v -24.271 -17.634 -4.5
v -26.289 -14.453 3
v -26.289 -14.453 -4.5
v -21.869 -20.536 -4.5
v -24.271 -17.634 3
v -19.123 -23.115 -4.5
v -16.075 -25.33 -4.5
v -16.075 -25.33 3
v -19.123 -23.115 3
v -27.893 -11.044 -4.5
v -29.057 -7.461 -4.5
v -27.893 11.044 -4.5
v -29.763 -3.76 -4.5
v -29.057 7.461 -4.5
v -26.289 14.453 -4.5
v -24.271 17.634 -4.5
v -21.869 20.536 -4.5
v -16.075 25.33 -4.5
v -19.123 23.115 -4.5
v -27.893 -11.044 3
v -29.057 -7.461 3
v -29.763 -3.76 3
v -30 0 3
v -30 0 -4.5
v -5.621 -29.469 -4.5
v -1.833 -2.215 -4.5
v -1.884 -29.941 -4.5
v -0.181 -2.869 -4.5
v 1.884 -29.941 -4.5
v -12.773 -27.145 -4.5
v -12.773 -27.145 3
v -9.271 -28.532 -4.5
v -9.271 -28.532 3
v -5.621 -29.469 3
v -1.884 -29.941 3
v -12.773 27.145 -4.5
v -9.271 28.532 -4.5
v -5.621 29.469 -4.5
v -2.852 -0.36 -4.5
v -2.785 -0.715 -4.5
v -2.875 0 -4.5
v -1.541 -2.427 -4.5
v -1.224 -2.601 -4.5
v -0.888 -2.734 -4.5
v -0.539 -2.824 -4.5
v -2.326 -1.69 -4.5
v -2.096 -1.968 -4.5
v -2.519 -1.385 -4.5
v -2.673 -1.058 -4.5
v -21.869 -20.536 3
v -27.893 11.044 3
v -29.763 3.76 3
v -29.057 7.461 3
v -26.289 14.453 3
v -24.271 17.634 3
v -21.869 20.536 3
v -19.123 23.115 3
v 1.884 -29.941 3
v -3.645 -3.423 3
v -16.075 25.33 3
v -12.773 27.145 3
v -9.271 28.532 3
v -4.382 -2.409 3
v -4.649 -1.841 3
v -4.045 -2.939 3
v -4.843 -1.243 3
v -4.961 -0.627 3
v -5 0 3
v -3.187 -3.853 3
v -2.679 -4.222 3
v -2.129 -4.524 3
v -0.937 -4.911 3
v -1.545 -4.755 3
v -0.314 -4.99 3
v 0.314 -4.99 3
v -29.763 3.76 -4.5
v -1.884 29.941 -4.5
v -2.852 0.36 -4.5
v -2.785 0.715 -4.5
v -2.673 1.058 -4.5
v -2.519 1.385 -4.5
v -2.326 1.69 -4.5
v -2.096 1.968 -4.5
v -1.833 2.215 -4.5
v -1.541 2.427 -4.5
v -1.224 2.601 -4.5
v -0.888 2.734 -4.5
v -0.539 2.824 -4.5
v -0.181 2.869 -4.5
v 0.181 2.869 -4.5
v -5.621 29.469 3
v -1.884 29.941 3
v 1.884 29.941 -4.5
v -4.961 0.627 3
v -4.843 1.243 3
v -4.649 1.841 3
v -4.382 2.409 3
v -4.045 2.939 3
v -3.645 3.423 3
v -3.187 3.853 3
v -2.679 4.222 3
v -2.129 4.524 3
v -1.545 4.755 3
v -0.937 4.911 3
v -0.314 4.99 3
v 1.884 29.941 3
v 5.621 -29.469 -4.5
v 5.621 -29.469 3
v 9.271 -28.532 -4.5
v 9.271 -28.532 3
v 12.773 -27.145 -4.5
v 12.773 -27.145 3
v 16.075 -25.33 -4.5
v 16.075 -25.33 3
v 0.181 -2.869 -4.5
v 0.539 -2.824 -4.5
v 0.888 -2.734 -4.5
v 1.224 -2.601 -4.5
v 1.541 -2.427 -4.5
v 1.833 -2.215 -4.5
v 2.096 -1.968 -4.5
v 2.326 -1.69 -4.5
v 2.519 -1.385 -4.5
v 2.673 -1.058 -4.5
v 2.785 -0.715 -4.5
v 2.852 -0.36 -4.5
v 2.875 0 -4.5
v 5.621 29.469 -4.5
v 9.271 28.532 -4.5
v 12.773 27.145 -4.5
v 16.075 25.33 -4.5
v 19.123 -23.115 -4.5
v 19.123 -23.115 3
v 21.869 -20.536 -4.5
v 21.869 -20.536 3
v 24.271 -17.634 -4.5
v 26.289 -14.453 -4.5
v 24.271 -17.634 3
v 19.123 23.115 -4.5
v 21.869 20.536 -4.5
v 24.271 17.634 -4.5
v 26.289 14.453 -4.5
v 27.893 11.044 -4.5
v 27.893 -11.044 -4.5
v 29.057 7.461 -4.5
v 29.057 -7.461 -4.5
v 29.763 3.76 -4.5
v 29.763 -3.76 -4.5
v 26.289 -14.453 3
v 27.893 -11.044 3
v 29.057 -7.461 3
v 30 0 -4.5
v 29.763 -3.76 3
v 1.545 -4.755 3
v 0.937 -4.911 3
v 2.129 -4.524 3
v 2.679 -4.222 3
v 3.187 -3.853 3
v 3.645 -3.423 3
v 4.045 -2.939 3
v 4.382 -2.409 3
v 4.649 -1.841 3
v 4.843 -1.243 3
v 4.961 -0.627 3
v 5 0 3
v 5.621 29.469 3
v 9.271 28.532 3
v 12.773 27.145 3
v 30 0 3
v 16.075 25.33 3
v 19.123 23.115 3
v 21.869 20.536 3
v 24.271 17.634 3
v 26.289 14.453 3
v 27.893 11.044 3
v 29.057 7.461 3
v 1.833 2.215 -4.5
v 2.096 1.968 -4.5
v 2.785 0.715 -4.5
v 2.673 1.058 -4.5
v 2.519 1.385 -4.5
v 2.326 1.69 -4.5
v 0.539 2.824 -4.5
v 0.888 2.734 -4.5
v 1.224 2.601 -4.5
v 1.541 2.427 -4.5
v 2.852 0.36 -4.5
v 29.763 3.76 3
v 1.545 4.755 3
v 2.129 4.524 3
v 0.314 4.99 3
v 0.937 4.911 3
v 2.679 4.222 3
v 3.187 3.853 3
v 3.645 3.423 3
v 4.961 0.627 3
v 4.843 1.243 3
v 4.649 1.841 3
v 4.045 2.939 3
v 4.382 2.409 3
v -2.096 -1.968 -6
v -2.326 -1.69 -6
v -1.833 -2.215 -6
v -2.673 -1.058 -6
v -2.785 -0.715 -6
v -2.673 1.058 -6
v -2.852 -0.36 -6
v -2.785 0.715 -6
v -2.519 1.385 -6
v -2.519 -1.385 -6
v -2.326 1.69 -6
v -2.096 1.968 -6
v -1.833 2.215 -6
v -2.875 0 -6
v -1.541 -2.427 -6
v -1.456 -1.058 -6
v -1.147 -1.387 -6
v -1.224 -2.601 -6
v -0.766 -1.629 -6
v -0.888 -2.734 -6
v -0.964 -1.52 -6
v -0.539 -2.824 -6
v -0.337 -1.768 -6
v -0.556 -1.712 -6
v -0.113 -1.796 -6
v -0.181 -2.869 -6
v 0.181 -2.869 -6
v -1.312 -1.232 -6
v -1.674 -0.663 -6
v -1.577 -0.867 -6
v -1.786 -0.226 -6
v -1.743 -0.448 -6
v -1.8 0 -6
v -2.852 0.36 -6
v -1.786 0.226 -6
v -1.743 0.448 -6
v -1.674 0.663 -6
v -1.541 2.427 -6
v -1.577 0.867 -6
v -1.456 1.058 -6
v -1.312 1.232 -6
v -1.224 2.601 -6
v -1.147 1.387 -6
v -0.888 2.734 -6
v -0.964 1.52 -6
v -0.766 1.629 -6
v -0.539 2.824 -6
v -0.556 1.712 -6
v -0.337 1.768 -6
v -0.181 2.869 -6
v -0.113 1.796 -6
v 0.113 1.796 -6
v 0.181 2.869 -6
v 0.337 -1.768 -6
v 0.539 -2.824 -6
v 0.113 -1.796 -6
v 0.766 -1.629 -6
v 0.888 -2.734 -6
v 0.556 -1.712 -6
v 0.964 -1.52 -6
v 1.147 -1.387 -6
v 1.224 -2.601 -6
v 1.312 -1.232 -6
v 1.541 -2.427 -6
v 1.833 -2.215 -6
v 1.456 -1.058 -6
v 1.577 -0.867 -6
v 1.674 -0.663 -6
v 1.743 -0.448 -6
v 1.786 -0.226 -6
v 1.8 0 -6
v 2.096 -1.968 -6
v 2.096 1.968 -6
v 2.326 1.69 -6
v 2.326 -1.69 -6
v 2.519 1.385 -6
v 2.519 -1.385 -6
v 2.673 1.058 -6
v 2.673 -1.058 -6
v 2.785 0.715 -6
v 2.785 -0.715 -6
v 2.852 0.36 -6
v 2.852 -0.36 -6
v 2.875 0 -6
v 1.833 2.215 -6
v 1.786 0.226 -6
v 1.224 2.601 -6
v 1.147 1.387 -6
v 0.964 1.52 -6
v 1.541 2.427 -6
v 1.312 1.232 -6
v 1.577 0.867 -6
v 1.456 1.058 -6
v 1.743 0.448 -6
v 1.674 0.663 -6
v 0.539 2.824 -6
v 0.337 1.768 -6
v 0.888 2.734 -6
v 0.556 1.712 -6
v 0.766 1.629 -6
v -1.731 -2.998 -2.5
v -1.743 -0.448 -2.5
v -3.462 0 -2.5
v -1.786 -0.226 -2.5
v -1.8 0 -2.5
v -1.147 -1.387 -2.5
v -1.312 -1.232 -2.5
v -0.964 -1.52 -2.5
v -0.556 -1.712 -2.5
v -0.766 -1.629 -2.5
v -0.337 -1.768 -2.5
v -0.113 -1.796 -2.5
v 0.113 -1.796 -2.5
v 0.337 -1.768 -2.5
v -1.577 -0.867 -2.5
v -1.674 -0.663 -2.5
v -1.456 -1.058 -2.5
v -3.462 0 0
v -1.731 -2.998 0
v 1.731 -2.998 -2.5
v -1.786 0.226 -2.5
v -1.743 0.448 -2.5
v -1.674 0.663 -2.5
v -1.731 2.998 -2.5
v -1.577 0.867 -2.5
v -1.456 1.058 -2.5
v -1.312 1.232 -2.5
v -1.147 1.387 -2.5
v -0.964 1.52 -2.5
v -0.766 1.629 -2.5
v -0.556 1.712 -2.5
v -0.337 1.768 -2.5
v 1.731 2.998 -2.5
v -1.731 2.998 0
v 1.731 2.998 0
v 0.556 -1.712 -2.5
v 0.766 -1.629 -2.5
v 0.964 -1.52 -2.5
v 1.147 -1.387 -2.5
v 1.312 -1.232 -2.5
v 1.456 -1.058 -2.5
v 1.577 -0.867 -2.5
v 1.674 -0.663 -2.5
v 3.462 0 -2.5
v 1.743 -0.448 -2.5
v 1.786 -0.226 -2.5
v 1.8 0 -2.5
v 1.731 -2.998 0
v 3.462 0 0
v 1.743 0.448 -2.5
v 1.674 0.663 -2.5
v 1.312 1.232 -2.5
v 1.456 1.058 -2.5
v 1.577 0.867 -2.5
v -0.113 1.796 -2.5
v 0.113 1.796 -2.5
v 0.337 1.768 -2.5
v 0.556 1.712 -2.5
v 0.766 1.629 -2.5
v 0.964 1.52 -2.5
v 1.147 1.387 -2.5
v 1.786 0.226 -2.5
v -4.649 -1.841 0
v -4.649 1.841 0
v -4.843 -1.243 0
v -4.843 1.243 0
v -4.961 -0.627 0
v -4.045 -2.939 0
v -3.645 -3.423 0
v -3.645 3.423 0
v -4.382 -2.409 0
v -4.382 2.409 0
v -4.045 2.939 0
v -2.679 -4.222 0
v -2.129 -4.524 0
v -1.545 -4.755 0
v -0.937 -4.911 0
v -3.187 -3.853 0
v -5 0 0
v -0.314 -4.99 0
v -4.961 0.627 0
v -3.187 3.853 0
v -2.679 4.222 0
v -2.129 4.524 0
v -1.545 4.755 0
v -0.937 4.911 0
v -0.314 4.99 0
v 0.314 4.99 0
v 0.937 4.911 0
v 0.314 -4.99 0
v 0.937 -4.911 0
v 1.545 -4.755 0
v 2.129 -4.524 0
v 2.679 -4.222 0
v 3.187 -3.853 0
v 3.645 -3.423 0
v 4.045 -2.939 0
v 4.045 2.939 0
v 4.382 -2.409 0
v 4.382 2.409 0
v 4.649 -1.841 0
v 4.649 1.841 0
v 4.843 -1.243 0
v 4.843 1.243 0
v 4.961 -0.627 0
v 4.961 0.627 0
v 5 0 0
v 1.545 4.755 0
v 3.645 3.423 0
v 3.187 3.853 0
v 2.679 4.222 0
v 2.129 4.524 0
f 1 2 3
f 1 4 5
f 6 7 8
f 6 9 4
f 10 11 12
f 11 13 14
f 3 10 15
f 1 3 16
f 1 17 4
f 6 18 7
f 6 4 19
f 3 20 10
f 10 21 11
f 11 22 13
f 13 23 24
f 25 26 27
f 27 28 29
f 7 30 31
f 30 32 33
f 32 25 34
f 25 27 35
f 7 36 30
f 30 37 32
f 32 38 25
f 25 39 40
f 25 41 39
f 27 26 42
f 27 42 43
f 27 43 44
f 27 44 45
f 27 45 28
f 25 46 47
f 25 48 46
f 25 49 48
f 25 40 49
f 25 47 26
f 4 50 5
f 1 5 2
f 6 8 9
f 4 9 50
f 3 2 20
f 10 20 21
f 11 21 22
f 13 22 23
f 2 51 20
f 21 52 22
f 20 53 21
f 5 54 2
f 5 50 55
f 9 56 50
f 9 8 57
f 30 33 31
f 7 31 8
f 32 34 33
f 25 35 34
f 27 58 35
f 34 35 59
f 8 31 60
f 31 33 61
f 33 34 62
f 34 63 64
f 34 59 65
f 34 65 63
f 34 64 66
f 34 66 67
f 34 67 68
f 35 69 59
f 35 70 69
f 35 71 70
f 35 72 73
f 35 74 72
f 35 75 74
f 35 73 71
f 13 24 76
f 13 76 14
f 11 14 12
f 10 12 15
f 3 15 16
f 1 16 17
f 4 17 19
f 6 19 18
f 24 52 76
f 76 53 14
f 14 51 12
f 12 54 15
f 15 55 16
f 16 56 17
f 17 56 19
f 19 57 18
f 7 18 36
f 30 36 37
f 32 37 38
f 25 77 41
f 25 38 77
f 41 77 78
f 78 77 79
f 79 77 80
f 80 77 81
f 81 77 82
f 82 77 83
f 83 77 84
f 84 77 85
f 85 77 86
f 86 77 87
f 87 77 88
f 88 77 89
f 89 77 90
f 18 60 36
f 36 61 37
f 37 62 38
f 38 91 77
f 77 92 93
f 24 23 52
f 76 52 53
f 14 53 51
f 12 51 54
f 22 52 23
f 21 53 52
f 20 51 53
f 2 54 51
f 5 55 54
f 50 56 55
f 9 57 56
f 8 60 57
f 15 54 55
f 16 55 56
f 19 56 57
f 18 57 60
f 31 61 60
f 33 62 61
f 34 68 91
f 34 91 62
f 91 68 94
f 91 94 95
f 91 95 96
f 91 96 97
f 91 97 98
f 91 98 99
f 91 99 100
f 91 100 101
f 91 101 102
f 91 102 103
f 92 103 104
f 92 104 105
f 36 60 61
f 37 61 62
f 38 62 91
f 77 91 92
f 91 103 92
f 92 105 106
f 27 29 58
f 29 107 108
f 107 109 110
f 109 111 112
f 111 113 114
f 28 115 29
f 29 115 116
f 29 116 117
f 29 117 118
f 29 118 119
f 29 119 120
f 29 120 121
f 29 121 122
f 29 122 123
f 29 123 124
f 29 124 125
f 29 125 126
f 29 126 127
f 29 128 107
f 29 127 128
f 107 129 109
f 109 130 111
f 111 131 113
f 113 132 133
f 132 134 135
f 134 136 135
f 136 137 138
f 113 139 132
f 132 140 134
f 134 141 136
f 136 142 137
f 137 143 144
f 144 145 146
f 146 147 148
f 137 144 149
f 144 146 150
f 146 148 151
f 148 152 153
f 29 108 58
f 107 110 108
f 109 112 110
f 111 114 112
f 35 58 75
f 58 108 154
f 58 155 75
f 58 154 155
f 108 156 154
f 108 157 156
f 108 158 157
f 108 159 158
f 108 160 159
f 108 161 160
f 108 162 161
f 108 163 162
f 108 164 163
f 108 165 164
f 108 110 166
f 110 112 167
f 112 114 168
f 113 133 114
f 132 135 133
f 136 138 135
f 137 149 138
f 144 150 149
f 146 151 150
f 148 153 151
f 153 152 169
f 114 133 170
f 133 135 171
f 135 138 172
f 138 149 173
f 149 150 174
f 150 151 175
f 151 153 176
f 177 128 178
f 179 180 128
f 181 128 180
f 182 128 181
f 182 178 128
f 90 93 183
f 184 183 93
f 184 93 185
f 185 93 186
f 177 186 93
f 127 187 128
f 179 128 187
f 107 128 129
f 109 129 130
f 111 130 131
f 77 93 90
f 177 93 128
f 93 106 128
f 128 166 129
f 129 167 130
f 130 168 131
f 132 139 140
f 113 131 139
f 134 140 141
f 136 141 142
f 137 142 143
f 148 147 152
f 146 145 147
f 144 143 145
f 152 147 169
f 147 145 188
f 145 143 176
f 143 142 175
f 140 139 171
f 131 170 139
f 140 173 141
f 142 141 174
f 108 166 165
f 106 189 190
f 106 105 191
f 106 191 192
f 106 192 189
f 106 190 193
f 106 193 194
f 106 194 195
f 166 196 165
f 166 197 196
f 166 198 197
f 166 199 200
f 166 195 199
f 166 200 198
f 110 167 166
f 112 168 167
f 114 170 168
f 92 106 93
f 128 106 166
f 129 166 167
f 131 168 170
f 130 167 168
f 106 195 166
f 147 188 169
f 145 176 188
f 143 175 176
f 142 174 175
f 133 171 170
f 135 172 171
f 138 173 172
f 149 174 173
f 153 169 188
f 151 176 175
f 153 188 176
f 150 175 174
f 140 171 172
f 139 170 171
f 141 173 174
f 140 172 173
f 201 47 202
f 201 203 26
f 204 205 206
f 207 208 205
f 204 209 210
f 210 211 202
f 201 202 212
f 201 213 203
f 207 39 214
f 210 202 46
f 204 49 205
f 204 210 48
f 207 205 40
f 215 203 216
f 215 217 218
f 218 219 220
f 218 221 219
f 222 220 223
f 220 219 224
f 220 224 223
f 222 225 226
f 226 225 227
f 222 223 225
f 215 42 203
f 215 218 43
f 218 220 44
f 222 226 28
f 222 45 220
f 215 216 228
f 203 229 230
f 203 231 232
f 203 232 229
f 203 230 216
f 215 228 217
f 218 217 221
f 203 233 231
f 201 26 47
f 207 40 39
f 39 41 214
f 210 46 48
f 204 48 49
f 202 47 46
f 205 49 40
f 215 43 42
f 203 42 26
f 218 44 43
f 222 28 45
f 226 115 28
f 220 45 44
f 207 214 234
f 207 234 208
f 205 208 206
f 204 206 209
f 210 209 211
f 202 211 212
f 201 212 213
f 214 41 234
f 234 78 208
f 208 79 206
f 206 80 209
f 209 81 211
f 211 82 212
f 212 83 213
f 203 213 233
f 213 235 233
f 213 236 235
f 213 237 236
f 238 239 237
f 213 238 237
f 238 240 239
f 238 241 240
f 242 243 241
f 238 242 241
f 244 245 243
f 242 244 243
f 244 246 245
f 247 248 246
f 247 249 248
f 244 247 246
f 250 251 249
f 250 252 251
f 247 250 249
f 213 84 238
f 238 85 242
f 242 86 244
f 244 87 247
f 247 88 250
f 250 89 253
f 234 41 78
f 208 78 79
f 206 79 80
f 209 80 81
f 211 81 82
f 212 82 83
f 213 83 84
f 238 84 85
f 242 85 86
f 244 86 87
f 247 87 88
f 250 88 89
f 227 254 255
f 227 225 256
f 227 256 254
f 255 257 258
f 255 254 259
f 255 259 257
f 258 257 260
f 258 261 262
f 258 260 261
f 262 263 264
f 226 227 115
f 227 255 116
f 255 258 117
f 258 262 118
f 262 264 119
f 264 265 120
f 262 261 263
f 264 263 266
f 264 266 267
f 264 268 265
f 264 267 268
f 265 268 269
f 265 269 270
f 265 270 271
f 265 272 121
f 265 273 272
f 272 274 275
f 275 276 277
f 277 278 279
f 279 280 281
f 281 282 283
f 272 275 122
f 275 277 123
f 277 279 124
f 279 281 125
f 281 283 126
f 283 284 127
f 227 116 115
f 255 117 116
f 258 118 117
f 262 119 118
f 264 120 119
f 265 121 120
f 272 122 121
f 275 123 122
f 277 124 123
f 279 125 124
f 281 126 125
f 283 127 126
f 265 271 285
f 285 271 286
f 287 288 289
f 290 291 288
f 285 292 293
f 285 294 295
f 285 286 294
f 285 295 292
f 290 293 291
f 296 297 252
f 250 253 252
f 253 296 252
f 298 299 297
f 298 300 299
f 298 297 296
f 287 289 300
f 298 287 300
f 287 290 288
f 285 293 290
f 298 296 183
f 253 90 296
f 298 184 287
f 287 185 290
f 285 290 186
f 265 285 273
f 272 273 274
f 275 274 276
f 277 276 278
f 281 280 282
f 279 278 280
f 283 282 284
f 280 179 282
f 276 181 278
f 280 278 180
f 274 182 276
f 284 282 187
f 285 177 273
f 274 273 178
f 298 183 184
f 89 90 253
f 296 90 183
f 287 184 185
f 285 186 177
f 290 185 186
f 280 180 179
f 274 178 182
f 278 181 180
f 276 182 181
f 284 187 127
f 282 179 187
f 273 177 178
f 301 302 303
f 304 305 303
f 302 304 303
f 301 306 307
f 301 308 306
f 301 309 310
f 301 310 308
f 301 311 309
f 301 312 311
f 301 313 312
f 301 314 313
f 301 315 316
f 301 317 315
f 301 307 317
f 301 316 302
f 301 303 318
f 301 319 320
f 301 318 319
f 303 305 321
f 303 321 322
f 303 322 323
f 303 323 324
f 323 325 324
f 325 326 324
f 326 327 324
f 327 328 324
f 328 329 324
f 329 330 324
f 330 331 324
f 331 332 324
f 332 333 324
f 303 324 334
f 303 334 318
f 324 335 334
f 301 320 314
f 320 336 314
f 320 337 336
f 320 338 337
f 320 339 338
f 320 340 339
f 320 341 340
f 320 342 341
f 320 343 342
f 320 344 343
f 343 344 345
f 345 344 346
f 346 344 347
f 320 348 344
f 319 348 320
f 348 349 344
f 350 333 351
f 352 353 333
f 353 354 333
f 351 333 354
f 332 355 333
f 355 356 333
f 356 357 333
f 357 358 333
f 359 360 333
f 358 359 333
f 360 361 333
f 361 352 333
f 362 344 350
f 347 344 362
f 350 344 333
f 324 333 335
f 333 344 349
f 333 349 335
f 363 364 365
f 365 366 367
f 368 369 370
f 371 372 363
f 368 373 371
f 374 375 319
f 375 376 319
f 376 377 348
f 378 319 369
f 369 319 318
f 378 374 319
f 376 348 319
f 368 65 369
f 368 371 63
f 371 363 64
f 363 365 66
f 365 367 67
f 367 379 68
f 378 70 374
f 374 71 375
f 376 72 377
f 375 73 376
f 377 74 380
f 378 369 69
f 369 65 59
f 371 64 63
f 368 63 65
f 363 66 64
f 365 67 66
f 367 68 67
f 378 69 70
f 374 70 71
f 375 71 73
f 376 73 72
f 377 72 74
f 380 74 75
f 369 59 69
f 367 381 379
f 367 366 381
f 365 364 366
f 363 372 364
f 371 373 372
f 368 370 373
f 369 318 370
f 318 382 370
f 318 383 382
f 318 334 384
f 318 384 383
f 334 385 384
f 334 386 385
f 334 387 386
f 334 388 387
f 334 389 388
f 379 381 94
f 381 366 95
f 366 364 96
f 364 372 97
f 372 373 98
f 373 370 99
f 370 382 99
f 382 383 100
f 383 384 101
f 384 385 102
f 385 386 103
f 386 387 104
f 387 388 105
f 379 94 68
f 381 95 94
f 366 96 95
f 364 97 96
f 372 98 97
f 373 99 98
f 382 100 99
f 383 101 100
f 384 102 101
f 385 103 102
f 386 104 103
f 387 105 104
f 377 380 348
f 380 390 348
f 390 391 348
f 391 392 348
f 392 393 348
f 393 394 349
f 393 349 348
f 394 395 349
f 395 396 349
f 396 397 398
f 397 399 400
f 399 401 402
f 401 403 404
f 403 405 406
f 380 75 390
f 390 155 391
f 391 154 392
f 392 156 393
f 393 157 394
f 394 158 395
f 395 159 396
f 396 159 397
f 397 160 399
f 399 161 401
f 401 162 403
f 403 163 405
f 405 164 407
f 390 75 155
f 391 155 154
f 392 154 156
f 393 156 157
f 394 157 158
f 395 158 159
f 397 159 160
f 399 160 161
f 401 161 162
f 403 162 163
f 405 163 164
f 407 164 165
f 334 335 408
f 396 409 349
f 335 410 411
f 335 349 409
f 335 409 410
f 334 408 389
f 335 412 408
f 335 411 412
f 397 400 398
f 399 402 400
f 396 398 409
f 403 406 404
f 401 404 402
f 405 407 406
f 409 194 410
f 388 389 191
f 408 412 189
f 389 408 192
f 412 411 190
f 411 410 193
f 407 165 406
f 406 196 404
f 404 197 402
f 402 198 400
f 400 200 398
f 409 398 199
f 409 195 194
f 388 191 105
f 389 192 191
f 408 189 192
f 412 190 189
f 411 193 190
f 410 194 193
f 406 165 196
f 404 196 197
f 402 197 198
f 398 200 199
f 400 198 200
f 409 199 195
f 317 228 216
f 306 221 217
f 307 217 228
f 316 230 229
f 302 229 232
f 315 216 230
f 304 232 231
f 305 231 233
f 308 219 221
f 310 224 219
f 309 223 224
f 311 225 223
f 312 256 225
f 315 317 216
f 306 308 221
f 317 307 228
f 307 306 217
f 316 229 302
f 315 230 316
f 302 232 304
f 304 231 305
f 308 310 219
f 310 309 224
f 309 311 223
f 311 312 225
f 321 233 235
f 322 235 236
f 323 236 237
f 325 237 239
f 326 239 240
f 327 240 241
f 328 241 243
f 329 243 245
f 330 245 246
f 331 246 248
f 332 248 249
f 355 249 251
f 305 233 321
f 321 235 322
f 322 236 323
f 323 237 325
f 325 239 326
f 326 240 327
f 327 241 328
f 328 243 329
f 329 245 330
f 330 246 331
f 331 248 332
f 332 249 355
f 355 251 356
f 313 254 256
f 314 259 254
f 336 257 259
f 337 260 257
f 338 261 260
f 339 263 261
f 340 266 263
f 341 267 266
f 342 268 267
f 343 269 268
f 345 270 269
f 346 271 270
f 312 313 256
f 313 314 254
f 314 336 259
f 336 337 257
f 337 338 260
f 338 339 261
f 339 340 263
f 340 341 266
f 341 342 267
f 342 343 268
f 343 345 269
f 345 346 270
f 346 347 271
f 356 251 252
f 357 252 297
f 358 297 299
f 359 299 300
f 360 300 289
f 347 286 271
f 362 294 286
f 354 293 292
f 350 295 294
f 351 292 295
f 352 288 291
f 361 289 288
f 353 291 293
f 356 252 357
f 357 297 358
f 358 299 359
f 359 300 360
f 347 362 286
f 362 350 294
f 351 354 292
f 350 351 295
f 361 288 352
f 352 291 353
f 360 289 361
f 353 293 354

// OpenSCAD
$fn = 50;

difference() {
	union() {
		translate(v = [0, 0, -4.5]) {
			cylinder(h = 7.5, r = 30.0);
		}
		#translate(v = [0, 0, -6.0]) {
			cylinder(h = 6, r = 2.875);
		}
	}
	union() {
		translate(v = [0, 0, 0]) {
			rotate(a = [0, 0, 0]) {
				difference() {
					union() {
						translate(v = [0, 0, -2.5]) {
							linear_extrude(height = 2.5) {
								polygon(points = [[3.4619999999999997, 0.0], [1.7310000000000003, 2.9981799479017264], [-1.7309999999999992, 2.9981799479017264], [-3.4619999999999997, 4.2397272186481365e-16], [-1.7310000000000014, -2.998179947901726], [1.7309999999999977, -2.9981799479017277]]);
							}
						}
					}
					union();
				}
			}
		}
		#cylinder(h = 3, r = 5.0);
		#translate(v = [0, 0, -100.0]) {
			cylinder(h = 200, r = 1.8);
		}
	}
}
